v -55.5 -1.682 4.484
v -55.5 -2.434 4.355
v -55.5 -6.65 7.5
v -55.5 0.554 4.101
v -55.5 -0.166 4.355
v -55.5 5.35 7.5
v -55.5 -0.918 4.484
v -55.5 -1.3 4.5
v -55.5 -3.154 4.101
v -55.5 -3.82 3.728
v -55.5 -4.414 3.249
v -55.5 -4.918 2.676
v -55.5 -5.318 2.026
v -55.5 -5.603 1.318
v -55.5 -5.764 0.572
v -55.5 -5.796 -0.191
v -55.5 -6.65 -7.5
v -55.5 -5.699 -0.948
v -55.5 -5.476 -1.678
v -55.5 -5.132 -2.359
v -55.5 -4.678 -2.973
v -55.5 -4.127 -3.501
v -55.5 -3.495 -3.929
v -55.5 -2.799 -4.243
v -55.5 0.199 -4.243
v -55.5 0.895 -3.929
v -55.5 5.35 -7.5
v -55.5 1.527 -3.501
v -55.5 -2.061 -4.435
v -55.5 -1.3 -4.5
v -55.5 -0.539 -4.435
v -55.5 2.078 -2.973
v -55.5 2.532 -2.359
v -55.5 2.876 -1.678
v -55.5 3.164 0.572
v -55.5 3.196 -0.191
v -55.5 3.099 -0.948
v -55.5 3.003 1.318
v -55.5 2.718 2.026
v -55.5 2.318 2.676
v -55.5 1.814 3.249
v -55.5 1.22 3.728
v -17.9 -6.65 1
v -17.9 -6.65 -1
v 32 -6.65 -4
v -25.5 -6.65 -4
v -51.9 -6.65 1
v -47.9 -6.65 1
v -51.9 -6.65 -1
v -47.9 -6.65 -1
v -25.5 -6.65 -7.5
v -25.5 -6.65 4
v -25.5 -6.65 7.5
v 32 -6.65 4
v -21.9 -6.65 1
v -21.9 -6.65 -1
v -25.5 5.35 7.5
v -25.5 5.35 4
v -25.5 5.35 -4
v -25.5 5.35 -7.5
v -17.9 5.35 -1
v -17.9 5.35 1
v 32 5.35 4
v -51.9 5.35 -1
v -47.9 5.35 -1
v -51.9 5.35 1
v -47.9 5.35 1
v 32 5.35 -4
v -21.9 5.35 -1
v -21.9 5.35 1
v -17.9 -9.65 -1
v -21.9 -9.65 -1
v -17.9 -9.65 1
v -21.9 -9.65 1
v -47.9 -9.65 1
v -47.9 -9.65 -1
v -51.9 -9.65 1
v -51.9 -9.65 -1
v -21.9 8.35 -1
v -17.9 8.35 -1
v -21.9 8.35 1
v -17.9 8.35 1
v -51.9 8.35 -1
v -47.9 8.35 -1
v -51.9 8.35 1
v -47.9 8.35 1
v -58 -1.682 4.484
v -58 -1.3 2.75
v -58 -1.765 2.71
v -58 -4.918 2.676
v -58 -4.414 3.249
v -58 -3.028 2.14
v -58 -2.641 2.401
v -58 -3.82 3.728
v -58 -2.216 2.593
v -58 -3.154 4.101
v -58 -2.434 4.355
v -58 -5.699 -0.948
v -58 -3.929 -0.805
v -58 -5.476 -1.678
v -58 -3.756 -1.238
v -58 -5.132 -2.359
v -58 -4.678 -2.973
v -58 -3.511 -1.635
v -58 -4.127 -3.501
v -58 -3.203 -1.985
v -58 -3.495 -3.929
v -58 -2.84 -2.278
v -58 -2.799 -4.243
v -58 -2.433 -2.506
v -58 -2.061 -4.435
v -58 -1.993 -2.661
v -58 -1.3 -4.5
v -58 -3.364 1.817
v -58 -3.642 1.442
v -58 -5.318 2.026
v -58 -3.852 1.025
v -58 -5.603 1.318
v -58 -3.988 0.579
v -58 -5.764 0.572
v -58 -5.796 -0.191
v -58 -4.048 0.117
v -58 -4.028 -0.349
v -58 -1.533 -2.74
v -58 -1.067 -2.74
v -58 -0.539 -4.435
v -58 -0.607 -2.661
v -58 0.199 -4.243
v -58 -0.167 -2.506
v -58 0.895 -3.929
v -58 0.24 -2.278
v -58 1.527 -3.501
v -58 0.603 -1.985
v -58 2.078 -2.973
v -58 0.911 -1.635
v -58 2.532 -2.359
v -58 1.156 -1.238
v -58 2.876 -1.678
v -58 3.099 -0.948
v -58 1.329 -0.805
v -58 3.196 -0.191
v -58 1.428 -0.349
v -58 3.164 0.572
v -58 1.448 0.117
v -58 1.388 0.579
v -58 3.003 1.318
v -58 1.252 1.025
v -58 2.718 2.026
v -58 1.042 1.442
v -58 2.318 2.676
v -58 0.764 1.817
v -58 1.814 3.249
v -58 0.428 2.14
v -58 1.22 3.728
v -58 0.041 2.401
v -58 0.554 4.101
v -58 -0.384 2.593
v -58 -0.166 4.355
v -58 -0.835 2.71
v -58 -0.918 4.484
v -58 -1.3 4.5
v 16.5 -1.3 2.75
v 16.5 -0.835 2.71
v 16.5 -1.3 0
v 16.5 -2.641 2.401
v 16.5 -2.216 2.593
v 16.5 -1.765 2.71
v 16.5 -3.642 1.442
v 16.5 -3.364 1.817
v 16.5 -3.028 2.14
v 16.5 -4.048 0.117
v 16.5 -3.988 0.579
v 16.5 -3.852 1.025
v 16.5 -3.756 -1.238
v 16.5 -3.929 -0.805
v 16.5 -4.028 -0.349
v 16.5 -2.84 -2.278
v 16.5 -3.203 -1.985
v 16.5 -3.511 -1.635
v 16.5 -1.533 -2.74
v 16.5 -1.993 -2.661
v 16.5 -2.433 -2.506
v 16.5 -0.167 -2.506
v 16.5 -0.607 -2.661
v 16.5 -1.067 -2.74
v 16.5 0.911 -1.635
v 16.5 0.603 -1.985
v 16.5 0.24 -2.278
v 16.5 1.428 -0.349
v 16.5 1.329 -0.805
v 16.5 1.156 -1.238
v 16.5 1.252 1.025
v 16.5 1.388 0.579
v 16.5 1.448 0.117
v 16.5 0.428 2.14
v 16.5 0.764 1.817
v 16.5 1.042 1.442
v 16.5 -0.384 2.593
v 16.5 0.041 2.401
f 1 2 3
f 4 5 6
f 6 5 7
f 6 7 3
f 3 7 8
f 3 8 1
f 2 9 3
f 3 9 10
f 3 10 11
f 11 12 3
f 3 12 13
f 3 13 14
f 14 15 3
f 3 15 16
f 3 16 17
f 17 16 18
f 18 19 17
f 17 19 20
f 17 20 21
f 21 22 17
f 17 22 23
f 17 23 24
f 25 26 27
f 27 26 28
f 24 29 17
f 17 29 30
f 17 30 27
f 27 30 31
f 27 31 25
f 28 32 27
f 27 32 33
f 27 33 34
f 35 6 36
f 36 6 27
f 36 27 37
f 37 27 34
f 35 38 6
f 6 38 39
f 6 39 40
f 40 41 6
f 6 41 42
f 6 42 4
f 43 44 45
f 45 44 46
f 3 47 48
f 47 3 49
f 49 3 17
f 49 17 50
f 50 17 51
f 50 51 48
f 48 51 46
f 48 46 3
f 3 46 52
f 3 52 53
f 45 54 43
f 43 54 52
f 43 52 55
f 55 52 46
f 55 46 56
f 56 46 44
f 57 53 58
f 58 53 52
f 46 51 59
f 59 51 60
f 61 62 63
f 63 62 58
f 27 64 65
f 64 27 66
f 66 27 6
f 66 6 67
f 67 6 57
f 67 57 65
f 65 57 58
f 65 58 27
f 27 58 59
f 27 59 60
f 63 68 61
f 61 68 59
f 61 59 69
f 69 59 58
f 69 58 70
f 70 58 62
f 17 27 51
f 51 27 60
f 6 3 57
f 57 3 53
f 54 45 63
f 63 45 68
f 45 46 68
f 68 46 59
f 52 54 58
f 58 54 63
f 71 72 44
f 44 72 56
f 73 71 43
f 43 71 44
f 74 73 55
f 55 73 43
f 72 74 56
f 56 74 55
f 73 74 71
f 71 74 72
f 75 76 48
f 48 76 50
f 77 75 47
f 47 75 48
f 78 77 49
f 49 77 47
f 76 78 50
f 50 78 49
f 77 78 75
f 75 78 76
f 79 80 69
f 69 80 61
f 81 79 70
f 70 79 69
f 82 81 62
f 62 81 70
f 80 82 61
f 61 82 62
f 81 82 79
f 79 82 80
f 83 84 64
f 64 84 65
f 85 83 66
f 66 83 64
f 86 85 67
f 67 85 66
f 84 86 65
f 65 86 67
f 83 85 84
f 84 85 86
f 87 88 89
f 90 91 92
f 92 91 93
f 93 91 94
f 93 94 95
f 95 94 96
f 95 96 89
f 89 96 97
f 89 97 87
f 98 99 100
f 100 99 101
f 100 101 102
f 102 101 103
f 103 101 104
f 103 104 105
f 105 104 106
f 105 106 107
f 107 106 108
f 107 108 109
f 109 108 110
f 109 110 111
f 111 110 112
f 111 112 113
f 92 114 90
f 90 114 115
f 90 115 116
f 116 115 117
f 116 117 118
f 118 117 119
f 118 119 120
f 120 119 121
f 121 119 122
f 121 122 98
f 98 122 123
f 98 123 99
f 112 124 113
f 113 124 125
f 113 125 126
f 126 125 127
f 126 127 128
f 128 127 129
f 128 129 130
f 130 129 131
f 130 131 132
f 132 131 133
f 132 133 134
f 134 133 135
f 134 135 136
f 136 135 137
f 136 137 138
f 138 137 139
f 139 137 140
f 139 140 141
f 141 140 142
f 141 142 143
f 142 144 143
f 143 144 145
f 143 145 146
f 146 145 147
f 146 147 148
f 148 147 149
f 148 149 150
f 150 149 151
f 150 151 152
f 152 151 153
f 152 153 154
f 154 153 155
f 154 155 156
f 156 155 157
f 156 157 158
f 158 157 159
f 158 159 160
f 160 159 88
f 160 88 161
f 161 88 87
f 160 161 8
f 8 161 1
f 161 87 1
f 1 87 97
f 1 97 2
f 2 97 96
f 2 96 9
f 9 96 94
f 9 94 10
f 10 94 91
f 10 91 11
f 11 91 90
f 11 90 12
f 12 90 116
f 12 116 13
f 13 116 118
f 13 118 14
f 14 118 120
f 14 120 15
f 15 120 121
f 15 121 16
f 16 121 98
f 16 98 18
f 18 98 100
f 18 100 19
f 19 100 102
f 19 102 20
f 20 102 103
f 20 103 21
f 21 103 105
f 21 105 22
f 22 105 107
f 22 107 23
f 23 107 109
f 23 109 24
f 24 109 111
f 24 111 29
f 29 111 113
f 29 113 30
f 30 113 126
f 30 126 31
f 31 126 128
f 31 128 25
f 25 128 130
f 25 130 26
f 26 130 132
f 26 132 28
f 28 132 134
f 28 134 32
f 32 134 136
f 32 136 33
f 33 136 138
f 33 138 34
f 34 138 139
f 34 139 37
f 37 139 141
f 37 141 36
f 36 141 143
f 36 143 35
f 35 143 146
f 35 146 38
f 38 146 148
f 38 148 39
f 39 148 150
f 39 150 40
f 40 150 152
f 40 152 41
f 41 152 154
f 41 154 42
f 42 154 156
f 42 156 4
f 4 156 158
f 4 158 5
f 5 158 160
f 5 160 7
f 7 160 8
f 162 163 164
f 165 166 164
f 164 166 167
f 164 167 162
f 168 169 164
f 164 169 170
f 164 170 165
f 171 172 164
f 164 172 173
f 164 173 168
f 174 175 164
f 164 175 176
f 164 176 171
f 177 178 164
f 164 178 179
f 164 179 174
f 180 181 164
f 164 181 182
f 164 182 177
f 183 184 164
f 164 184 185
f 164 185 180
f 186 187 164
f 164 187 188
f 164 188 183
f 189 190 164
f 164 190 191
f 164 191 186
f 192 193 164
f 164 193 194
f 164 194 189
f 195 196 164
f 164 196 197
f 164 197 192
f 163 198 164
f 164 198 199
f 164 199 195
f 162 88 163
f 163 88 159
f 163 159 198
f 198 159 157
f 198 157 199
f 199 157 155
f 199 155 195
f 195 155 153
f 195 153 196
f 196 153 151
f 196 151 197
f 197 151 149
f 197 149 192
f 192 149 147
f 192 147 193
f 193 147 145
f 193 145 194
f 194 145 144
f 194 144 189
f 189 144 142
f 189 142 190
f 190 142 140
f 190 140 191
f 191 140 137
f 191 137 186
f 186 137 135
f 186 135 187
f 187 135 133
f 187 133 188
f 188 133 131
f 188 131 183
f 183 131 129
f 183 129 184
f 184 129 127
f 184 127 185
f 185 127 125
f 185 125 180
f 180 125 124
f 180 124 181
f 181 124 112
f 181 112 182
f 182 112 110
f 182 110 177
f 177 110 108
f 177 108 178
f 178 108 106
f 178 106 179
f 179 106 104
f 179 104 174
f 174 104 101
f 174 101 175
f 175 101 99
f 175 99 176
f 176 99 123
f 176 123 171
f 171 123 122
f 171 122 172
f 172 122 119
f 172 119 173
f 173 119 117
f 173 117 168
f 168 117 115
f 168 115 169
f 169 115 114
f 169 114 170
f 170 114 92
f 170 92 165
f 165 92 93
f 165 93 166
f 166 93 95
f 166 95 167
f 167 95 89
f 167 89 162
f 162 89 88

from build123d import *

# Parameters (mm, degrees)
RESSALTO_EXTRUS_O1_DEPTH      = 7.5
RESSALTO_EXTRUS_O1_DEPTH_BACK = 7.5
ESBO_O1_W                     = 30
ESBO_O1_H                     = 12
RESSALTO_EXTRUS_O2_DEPTH      = 4
RESSALTO_EXTRUS_O2_DEPTH_BACK = 4
ESBO_O1_3_W                   = 57.5
ESBO_O1_3_H                   = 12
RESSALTO_EXTRUS_O3_DEPTH      = 3
RESSALTO_EXTRUS_O4_DEPTH      = 3
RESSALTO_EXTRUS_O6_DEPTH      = 7.5
RESSALTO_EXTRUS_O6_DEPTH_BACK = 7.5
ESBO_O1_9_W                   = 30
ESBO_O1_9_H                   = 12
ESBO_O5_R                     = 2.75
CORTE_EXTRUS_O1_DEPTH         = 72
RESSALTO_EXTRUS_O7_START      = 2.5
ESBO_O5_8_R                   = 4.5
ESBO_O5_8_R_2                 = 2.75
RESSALTO_EXTRUS_O7_DEPTH      = 2.5


with BuildPart() as part:
    # Esboço1 → Ressalto-extrusão1 (new, two sides: drawn at the far end of the back side and taken through both)
    with BuildSketch(Plane.XY.offset(-RESSALTO_EXTRUS_O1_DEPTH_BACK)):
        with Locations((-40.5, -0.65)):
            Rectangle(ESBO_O1_W, ESBO_O1_H)
    extrude(amount=RESSALTO_EXTRUS_O1_DEPTH + RESSALTO_EXTRUS_O1_DEPTH_BACK)

    # Esboço1<3> → Ressalto-extrusão2 (add, two sides: drawn at the far end of the back side and taken through both)
    with BuildSketch(Plane.XY.offset(-RESSALTO_EXTRUS_O2_DEPTH_BACK)):
        with Locations((3.25, -0.65)):
            Rectangle(ESBO_O1_3_W, ESBO_O1_3_H)
    extrude(amount=RESSALTO_EXTRUS_O2_DEPTH + RESSALTO_EXTRUS_O2_DEPTH_BACK)

    # Esboço2 → Ressalto-extrusão3 (add)
    with BuildSketch(Plane(origin=(-55.5, -6.65, -7.5), x_dir=(-1, 0, 0), z_dir=(0, -1, 0))):
        Polygon((-37.6, -6.5), (-37.6, -7.5), (-37.6, -8.5), (-33.6, -8.5), (-33.6, -6.5), align=None)
        Polygon((-7.6, -7.5), (-7.6, -8.5), (-3.6, -8.5), (-3.6, -7.5), (-3.6, -6.5), (-7.6, -6.5), align=None)
    extrude(amount=RESSALTO_EXTRUS_O3_DEPTH)

    # Esboço3 → Ressalto-extrusão4 (add)
    with BuildSketch(Plane(origin=(-55.5, 5.35, -7.5), x_dir=(-1, 0, 0), z_dir=(0, -1, 0))):
        Polygon((-37.6, -6.5), (-37.6, -7.5), (-37.6, -8.5), (-33.6, -8.5), (-33.6, -6.5), align=None)
        Polygon((-7.6, -7.5), (-7.6, -8.5), (-3.6, -8.5), (-3.6, -7.5), (-3.6, -6.5), (-7.6, -6.5), align=None)
    extrude(amount=-RESSALTO_EXTRUS_O4_DEPTH)

    # Esboço1<9> → Ressalto-extrusão6 (add, two sides: drawn at the far end of the back side and taken through both)
    with BuildSketch(Plane.XY.offset(-RESSALTO_EXTRUS_O6_DEPTH_BACK)):
        with Locations((-40.5, -0.65)):
            Rectangle(ESBO_O1_9_W, ESBO_O1_9_H)
    extrude(amount=RESSALTO_EXTRUS_O6_DEPTH + RESSALTO_EXTRUS_O6_DEPTH_BACK)

    # Esboço5 → Corte-extrusão1 (cut)
    with BuildSketch(Plane(origin=(-55.5, 5.35, -7.5), x_dir=(0, 0, 1), z_dir=(-1, 0, 0))):
        with Locations((7.5, -6.65)):
            Circle(ESBO_O5_R)
    extrude(amount=-CORTE_EXTRUS_O1_DEPTH, mode=Mode.SUBTRACT)

    # Esboço5<8> → Ressalto-extrusão7 (add)
    with BuildSketch(Plane(origin=(-55.5, 5.35, -7.5), x_dir=(0, 0, 1), z_dir=(-1, 0, 0)).offset(RESSALTO_EXTRUS_O7_START)):
        with Locations((7.5, -6.65)):
            Circle(ESBO_O5_8_R)
        with Locations((7.5, -6.65)):
            Circle(ESBO_O5_8_R_2, mode=Mode.SUBTRACT)
    extrude(amount=-RESSALTO_EXTRUS_O7_DEPTH)


solid = part.part
